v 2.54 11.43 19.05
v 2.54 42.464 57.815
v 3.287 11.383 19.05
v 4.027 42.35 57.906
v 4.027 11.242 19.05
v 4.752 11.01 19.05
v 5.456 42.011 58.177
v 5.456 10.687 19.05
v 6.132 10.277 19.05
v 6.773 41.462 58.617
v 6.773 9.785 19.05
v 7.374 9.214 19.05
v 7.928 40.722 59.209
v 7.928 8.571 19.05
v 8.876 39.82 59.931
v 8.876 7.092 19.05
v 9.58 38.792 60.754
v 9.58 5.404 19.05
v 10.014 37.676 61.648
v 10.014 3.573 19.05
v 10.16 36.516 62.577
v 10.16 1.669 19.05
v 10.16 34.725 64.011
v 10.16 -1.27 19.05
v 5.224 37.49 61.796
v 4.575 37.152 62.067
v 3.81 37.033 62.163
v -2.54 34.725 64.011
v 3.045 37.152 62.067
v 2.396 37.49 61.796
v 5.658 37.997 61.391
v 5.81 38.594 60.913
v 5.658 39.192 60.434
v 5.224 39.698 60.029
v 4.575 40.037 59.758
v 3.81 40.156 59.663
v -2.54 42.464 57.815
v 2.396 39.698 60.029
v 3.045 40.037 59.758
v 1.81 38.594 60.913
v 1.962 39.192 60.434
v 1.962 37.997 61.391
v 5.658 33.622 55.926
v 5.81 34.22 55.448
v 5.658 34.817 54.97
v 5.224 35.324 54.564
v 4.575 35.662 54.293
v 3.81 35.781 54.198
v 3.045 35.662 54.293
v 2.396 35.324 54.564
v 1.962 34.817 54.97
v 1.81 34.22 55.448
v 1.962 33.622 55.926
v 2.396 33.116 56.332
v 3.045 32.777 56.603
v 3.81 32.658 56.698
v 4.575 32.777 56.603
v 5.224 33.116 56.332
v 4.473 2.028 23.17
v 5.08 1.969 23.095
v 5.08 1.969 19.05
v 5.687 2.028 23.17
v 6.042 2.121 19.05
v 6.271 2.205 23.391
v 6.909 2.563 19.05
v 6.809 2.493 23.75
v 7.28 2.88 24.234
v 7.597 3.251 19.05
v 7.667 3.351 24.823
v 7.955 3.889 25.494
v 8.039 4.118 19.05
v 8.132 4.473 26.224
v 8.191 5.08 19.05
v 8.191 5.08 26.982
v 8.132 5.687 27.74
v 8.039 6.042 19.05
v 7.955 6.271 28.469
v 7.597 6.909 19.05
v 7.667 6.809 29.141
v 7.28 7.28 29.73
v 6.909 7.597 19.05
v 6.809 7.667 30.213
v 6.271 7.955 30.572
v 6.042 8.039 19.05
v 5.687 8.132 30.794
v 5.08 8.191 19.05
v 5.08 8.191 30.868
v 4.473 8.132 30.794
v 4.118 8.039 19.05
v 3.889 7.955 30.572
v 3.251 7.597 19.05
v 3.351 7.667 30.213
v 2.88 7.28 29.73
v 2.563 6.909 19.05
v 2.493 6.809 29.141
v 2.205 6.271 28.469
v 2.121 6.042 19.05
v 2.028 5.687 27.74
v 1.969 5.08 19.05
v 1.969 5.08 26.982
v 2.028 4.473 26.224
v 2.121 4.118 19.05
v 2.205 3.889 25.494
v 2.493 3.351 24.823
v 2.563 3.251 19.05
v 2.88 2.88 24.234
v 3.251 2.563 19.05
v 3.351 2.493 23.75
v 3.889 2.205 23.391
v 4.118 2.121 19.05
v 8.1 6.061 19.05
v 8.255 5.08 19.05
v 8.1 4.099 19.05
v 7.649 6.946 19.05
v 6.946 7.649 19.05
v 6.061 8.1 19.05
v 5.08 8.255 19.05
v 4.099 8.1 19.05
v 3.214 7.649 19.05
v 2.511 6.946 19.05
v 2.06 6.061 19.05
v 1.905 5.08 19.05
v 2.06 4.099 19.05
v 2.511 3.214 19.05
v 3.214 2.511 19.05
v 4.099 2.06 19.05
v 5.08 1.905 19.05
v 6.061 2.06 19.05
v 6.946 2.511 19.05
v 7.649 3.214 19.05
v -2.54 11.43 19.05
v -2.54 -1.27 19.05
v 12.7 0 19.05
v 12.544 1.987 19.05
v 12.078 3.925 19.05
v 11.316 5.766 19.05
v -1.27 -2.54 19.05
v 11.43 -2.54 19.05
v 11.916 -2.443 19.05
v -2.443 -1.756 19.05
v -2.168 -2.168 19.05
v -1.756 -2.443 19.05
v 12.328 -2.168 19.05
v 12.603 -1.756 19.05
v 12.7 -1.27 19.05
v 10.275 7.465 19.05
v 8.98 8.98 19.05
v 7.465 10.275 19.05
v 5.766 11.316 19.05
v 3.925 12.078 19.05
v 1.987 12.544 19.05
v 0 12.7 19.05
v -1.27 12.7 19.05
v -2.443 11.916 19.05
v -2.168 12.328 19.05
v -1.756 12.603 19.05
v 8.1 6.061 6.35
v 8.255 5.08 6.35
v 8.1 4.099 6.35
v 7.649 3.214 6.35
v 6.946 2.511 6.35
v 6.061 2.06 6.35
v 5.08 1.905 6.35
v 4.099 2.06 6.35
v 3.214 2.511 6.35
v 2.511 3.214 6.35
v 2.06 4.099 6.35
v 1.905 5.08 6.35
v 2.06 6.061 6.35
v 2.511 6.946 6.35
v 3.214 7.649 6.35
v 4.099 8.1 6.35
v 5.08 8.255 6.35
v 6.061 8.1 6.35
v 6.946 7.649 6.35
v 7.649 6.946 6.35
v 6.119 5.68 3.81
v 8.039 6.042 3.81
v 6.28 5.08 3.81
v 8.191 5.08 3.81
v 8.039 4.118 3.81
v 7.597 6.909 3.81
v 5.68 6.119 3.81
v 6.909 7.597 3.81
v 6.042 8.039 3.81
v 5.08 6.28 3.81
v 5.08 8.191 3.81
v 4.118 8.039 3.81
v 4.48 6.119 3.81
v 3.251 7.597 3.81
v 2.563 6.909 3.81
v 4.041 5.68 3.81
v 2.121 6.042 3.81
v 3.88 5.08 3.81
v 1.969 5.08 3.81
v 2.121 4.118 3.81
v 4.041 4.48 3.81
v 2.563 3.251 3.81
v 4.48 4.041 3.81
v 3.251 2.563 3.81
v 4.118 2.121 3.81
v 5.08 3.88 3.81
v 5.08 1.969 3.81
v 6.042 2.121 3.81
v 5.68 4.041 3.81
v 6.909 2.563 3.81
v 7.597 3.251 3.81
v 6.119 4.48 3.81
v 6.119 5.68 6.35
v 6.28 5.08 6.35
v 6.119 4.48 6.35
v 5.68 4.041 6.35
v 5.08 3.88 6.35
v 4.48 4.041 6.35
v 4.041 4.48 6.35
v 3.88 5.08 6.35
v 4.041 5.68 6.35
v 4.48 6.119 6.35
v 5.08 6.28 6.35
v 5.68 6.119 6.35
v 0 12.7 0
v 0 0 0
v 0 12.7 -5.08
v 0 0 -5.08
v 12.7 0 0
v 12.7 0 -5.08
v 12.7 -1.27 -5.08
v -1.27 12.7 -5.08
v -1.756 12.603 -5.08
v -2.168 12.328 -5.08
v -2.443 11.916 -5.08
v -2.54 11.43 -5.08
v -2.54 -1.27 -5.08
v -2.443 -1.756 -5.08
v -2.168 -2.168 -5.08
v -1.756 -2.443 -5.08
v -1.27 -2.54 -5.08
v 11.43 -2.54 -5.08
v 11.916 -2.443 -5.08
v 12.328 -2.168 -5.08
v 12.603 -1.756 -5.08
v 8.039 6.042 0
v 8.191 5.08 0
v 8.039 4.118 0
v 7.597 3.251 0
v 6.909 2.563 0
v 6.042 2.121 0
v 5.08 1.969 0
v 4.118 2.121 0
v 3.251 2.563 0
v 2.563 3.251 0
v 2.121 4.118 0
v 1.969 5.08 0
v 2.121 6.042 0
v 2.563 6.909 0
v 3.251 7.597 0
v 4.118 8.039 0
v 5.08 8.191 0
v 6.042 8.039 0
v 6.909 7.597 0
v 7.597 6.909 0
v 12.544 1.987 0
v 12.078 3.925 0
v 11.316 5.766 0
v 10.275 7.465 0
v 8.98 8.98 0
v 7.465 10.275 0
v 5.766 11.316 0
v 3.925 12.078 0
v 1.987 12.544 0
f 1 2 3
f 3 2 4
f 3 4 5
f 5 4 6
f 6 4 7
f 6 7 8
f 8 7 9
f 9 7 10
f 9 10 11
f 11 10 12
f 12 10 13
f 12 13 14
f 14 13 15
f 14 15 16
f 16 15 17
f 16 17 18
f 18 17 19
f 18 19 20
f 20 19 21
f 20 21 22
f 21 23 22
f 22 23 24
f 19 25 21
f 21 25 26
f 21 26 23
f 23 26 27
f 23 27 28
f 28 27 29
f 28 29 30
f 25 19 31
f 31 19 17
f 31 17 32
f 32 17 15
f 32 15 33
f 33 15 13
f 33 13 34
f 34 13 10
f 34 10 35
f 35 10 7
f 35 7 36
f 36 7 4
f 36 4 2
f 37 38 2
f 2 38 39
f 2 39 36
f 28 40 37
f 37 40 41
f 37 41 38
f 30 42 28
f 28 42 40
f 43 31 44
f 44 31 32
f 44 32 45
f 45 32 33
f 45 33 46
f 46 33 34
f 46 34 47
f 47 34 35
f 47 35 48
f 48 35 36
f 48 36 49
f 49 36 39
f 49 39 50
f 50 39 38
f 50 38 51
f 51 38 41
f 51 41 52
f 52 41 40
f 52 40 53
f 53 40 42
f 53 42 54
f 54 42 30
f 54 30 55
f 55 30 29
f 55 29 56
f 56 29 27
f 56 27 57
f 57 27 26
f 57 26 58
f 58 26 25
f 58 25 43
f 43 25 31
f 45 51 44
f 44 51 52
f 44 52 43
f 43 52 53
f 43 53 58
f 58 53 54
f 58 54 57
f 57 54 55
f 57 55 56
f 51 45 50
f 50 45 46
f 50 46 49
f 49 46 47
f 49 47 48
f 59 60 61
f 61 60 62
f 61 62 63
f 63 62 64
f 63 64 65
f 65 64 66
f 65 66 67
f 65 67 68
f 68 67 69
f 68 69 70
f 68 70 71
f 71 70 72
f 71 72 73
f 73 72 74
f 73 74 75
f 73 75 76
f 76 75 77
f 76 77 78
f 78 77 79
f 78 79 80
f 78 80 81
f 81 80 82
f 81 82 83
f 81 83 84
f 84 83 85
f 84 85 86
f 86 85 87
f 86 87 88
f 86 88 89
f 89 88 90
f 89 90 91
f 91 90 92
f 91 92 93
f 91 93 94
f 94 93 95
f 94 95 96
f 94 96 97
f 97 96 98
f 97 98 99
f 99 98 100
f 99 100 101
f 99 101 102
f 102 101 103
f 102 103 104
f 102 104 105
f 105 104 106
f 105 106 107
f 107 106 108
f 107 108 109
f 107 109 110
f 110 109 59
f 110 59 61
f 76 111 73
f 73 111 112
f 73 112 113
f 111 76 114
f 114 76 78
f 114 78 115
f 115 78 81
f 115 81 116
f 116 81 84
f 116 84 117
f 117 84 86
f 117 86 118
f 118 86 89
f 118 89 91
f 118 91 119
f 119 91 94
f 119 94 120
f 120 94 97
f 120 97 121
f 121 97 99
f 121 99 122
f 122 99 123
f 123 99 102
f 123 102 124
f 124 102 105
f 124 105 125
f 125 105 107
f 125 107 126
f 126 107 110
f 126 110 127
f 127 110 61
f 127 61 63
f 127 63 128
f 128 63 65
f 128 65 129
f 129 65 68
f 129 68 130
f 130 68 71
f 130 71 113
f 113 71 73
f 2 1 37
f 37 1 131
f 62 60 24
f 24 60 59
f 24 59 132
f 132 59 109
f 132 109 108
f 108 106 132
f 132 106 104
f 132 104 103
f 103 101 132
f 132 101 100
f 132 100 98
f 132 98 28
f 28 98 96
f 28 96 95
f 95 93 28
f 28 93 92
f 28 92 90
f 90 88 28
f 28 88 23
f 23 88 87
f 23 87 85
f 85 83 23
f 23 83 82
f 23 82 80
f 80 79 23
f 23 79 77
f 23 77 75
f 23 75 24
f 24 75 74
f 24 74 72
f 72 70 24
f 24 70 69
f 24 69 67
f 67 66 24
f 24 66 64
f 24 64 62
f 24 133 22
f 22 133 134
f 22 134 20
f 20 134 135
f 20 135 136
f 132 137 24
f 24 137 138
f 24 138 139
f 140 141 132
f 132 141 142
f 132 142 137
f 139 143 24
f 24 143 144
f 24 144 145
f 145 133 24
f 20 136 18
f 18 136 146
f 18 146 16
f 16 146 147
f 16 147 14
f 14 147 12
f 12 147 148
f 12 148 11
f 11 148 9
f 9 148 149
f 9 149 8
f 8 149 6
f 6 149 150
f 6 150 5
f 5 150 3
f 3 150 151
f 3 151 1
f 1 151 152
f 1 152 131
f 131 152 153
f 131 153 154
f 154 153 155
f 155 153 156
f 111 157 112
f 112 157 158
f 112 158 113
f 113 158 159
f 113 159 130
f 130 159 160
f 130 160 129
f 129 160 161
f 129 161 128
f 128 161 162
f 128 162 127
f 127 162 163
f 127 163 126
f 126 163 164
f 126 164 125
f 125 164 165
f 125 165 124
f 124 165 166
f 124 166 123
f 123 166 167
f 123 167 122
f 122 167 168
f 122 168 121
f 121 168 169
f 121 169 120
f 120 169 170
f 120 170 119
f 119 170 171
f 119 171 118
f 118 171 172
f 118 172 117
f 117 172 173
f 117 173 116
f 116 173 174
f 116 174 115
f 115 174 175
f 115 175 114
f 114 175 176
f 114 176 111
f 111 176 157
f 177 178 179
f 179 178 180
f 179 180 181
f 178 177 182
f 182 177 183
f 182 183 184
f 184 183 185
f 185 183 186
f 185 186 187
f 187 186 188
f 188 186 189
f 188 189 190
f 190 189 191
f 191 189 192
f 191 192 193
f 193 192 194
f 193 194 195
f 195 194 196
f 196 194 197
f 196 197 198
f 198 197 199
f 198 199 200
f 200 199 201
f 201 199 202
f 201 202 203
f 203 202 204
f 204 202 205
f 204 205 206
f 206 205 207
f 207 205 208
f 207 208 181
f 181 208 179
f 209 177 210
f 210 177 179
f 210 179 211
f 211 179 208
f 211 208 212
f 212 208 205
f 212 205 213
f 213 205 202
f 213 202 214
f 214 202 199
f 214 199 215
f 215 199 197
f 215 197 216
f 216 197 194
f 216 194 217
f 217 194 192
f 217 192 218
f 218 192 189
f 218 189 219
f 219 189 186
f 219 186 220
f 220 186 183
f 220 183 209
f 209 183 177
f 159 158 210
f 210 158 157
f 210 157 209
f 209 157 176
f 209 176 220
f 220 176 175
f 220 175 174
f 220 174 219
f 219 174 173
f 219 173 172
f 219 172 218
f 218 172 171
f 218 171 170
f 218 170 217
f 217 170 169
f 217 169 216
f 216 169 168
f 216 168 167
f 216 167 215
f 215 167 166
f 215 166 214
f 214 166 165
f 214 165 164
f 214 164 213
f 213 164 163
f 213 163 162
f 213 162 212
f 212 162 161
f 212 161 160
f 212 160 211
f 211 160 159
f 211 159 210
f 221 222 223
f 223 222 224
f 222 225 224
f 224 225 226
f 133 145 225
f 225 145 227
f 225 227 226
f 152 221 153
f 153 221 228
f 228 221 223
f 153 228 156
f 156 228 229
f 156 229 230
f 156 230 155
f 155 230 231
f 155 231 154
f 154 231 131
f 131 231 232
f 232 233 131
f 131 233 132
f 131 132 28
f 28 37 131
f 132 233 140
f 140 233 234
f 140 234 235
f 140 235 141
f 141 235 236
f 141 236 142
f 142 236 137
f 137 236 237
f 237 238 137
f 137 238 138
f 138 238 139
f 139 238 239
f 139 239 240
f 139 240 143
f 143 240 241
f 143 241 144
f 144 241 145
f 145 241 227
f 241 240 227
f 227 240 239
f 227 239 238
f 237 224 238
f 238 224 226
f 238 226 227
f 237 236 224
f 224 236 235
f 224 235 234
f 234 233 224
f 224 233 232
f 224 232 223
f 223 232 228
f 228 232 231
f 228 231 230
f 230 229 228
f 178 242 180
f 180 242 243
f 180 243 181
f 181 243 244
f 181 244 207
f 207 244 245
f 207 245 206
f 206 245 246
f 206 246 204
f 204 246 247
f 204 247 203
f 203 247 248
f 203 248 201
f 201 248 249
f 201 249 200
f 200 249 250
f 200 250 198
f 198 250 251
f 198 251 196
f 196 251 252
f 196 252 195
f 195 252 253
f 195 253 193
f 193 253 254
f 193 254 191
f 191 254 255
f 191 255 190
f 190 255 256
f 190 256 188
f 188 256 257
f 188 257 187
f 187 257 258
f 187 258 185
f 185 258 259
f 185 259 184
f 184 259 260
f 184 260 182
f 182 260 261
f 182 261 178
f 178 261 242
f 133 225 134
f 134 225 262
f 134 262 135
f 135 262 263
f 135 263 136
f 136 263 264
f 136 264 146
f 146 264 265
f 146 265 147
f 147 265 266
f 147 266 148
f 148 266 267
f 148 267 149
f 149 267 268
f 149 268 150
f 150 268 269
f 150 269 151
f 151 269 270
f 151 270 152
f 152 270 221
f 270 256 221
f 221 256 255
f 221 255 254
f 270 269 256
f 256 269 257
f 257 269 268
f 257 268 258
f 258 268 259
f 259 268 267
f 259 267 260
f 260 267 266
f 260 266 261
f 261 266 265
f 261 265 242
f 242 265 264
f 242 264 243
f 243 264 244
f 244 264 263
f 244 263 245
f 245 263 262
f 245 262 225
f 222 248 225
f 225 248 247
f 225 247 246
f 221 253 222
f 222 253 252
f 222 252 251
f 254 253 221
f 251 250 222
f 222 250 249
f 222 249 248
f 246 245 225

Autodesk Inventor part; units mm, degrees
ref_plane "YZ Plane" through (0, 0, 0) normal (1, 0, 0) x (0, 1, 0)
ref_plane "XZ Plane" through (0, 0, 0) normal (0, 1, 0) x (-1, 0, 0)
ref_plane "XY Plane" through (0, 0, 0) normal (0, 0, 1) x (1, 0, 0)
sketch "Sketch1" plane through (0, 0, 0) normal (0, 0, 1) x (1, 0, 0)
  line L0 (0, 0) -> (12.7, 0)
  line L1 (0, 0) -> (0, 12.7)
  arc A0 (12.7, 0) -> (0, 12.7) centre (0, 0) ccw
  circle A1 centre (5.08, 5.08) radius 3.1115
  dimension "d0" = 12.7
  dimension "d2" = 6.223
  dimension "d3" = 5.08
  dimension "d4" = 5.08
extrude "Extrusion1" add sketch "Sketch1" along normal blind 3.81
sketch "Sketch2" plane through (0, 0, 0) normal (0, 0, -1) x (-1, 0, 0)
  arc A0 (0, 12.7) -> (-12.7, 0) centre (0, 0) ccw projected
  line L0 (0, 12.7) -> (0, 0) projected
  line L1 (0, 12.7) -> (0, 0)
  line L2 (0, 0) -> (-12.7, 0) projected
  line L3 (-12.7, 0) -> (0, 0)
  line L4 (0, 12.7) -> (1.27, 12.7)
  line L5 (-12.7, 0) -> (-12.7, -1.27)
  line L6 (-11.43, -2.54) -> (1.27, -2.54)
  line L7 (2.54, -1.27) -> (2.54, 11.43)
  arc A1 (2.54, 11.43) -> (1.27, 12.7) centre (1.27, 11.43) ccw
  arc A2 (1.27, -2.54) -> (2.54, -1.27) centre (1.27, -1.27) ccw
  arc A3 (-12.7, -1.27) -> (-11.43, -2.54) centre (-11.43, -1.27) ccw
  point P0 (2.54, 12.7)
  point P1 (-12.7, -2.54)
  dimension "d7" = 2.54
  dimension "d8" = 2.54
  dimension "d9" = 1.27
extrude "Extrusion2" add sketch "Sketch2" along normal blind 5.08 and the other way blind 3.81 contours L4 A1 L7 A2 L6 A3 L5 L2 L0
sketch "Sketch3" plane through (0, 0, 3.81) normal (0, 0, 1) x (1, 0, 0)
  circle A0 centre (5.08, 5.08) radius 3.1115 projected
  circle A1 centre (5.08, 5.08) radius 1.2
  arc A2 (12.7, 0) -> (0, 12.7) centre (0, 0) ccw projected
  arc A3 (12.7, 0) -> (0, 12.7) centre (0, 0) ccw
  line L0 (-1.27, -2.54) -> (11.43, -2.54)
  line L1 (12.7, -1.27) -> (12.7, 0)
  line L2 (-2.54, -1.27) -> (-2.54, 11.43)
  line L3 (-1.27, 12.7) -> (0, 12.7)
  arc A4 (11.43, -2.54) -> (12.7, -1.27) centre (11.43, -1.27) ccw
  arc A5 (-2.54, -1.27) -> (-1.27, -2.54) centre (-1.27, -1.27) ccw
  arc A6 (-1.27, 12.7) -> (-2.54, 11.43) centre (-1.27, 11.43) ccw
  point P0 (-2.54, -2.54)
  point P1 (12.7, -2.54)
  point P2 (-2.54, 12.7)
  dimension "d14" = 2.4
  dimension "d15" = 15.24
  dimension "d16" = 15.24
  dimension "d17" = 1.27
extrude "Extrusion3" add sketch "Sketch3" along normal blind 2.54 contours A0 | L1 A4 L0 A5 L2 A6 L3 A2
sketch "Sketch4" plane through (0, 0, 6.35) normal (0, 0, 1) x (1, 0, 0)
  line L0 (0, 0) -> (12.7, 0) projected
  line L1 (-1.27, 12.7) -> (0, 12.7) projected
  arc A0 (12.7, 0) -> (0, 12.7) centre (0, 0) ccw
  line L2 (0, 12.7) -> (-1.27, 12.7)
  line L3 (-2.54, 11.43) -> (-2.54, -1.27)
  line L4 (-1.27, -2.54) -> (11.43, -2.54)
  line L5 (12.7, -1.27) -> (12.7, 0)
  arc A1 (-1.27, 12.7) -> (-2.54, 11.43) centre (-1.27, 11.43) ccw
  arc A2 (-2.54, -1.27) -> (-1.27, -2.54) centre (-1.27, -1.27) ccw
  arc A3 (11.43, -2.54) -> (12.7, -1.27) centre (11.43, -1.27) ccw
  circle A4 centre (5.08, 5.08) radius 1.2 projected
  circle A5 centre (5.08, 5.08) radius 3.175
  point P0 (-2.54, 12.7)
  point P1 (-2.54, -2.54)
  point P2 (12.7, -2.54)
  dimension "d20" = 15.24
  dimension "d21" = 15.24
  dimension "d22" = 1.27
  dimension "d23" = 6.35
extrude "Extrusion4" add sketch "Sketch4" along normal blind 12.7 contours L1 A0 L5 A3 L4 A2 L3 A1
sketch "Sketch5" plane through (-2.54, -1.27, -5.08) normal (-1, 0, 0) x (0, 0, 1)
  line L0 (24.13, 0) -> (0, 0) projected
  line L1 (24.13, 0) -> (69.0907, 35.9945)
  line L2 (24.13, 12.7) -> (0, 12.7) projected
  line L3 (24.13, 12.7) -> (62.8946, 43.7341)
  line L4 (69.0907, 35.9945) -> (62.8946, 43.7341)
  line L5 (24.13, 12.7) -> (24.13, 13.97) projected
  line L6 (24.13, 12.7) -> (24.13, 0)
  point P0 (5.08, 1.27)
  dimension "d26" = 141.32
  dimension "d27" = 141.32
  dimension "d28" = 57.594
extrude "Extrusion5" add sketch "Sketch5" against normal blind 12.7
sketch "Sketch6" plane through (0, 0, 19.05) normal (0, 0, 1) x (1, 0, 0)
  circle A0 centre (5.08, 5.08) radius 1.2 projected
  circle A1 centre (5.08, 5.08) radius 3.1115
  point P0 (0, 0)
  dimension "d31" = 6.223
extrude "Extrusion6" cut sketch "Sketch6" along normal blind 12.7 contours A0 | A1
sketch "Sketch7" plane through (-2.54, 34.7245, 64.0107) normal (0, 0.6249702, 0.7806486) x (1, 0, 0)
  line L0 (8.0758, 9.9142) -> (12.7, 9.9142) construction
  line L1 (12.7, 0) -> (0, 0) construction
  line L2 (12.7, 9.9142) -> (0, 0) construction
  line L3 (0, 0) -> (0, 15.0805) construction
  line L4 (0, 9.9142) -> (12.7, 0) construction
  circle A0 centre (6.35, 4.9571) radius 2
  point P0 (2.54, 12.8971)
  dimension "d34" = 4
extrude "Extrusion7" cut sketch "Sketch7" against normal blind 7
fillet "Fillet1" radius 7.62 1 edges at (10.16, 26.947, 38.4323)
equation "\"d34\" = m3_heat_set_insert"
equation "\"d35\" = m3_heat_set_depth"
equation "\"m3_heat_set_insert\" = 4"
equation "\"m3_clearance\" = 3.4"
equation "\"m3_heat_set_depth\" = 7"
equation "\"robot_diameter\" = 354"
equation "\"hardboard_thickness\" = 5"
properties part number "display_top_support_left"
